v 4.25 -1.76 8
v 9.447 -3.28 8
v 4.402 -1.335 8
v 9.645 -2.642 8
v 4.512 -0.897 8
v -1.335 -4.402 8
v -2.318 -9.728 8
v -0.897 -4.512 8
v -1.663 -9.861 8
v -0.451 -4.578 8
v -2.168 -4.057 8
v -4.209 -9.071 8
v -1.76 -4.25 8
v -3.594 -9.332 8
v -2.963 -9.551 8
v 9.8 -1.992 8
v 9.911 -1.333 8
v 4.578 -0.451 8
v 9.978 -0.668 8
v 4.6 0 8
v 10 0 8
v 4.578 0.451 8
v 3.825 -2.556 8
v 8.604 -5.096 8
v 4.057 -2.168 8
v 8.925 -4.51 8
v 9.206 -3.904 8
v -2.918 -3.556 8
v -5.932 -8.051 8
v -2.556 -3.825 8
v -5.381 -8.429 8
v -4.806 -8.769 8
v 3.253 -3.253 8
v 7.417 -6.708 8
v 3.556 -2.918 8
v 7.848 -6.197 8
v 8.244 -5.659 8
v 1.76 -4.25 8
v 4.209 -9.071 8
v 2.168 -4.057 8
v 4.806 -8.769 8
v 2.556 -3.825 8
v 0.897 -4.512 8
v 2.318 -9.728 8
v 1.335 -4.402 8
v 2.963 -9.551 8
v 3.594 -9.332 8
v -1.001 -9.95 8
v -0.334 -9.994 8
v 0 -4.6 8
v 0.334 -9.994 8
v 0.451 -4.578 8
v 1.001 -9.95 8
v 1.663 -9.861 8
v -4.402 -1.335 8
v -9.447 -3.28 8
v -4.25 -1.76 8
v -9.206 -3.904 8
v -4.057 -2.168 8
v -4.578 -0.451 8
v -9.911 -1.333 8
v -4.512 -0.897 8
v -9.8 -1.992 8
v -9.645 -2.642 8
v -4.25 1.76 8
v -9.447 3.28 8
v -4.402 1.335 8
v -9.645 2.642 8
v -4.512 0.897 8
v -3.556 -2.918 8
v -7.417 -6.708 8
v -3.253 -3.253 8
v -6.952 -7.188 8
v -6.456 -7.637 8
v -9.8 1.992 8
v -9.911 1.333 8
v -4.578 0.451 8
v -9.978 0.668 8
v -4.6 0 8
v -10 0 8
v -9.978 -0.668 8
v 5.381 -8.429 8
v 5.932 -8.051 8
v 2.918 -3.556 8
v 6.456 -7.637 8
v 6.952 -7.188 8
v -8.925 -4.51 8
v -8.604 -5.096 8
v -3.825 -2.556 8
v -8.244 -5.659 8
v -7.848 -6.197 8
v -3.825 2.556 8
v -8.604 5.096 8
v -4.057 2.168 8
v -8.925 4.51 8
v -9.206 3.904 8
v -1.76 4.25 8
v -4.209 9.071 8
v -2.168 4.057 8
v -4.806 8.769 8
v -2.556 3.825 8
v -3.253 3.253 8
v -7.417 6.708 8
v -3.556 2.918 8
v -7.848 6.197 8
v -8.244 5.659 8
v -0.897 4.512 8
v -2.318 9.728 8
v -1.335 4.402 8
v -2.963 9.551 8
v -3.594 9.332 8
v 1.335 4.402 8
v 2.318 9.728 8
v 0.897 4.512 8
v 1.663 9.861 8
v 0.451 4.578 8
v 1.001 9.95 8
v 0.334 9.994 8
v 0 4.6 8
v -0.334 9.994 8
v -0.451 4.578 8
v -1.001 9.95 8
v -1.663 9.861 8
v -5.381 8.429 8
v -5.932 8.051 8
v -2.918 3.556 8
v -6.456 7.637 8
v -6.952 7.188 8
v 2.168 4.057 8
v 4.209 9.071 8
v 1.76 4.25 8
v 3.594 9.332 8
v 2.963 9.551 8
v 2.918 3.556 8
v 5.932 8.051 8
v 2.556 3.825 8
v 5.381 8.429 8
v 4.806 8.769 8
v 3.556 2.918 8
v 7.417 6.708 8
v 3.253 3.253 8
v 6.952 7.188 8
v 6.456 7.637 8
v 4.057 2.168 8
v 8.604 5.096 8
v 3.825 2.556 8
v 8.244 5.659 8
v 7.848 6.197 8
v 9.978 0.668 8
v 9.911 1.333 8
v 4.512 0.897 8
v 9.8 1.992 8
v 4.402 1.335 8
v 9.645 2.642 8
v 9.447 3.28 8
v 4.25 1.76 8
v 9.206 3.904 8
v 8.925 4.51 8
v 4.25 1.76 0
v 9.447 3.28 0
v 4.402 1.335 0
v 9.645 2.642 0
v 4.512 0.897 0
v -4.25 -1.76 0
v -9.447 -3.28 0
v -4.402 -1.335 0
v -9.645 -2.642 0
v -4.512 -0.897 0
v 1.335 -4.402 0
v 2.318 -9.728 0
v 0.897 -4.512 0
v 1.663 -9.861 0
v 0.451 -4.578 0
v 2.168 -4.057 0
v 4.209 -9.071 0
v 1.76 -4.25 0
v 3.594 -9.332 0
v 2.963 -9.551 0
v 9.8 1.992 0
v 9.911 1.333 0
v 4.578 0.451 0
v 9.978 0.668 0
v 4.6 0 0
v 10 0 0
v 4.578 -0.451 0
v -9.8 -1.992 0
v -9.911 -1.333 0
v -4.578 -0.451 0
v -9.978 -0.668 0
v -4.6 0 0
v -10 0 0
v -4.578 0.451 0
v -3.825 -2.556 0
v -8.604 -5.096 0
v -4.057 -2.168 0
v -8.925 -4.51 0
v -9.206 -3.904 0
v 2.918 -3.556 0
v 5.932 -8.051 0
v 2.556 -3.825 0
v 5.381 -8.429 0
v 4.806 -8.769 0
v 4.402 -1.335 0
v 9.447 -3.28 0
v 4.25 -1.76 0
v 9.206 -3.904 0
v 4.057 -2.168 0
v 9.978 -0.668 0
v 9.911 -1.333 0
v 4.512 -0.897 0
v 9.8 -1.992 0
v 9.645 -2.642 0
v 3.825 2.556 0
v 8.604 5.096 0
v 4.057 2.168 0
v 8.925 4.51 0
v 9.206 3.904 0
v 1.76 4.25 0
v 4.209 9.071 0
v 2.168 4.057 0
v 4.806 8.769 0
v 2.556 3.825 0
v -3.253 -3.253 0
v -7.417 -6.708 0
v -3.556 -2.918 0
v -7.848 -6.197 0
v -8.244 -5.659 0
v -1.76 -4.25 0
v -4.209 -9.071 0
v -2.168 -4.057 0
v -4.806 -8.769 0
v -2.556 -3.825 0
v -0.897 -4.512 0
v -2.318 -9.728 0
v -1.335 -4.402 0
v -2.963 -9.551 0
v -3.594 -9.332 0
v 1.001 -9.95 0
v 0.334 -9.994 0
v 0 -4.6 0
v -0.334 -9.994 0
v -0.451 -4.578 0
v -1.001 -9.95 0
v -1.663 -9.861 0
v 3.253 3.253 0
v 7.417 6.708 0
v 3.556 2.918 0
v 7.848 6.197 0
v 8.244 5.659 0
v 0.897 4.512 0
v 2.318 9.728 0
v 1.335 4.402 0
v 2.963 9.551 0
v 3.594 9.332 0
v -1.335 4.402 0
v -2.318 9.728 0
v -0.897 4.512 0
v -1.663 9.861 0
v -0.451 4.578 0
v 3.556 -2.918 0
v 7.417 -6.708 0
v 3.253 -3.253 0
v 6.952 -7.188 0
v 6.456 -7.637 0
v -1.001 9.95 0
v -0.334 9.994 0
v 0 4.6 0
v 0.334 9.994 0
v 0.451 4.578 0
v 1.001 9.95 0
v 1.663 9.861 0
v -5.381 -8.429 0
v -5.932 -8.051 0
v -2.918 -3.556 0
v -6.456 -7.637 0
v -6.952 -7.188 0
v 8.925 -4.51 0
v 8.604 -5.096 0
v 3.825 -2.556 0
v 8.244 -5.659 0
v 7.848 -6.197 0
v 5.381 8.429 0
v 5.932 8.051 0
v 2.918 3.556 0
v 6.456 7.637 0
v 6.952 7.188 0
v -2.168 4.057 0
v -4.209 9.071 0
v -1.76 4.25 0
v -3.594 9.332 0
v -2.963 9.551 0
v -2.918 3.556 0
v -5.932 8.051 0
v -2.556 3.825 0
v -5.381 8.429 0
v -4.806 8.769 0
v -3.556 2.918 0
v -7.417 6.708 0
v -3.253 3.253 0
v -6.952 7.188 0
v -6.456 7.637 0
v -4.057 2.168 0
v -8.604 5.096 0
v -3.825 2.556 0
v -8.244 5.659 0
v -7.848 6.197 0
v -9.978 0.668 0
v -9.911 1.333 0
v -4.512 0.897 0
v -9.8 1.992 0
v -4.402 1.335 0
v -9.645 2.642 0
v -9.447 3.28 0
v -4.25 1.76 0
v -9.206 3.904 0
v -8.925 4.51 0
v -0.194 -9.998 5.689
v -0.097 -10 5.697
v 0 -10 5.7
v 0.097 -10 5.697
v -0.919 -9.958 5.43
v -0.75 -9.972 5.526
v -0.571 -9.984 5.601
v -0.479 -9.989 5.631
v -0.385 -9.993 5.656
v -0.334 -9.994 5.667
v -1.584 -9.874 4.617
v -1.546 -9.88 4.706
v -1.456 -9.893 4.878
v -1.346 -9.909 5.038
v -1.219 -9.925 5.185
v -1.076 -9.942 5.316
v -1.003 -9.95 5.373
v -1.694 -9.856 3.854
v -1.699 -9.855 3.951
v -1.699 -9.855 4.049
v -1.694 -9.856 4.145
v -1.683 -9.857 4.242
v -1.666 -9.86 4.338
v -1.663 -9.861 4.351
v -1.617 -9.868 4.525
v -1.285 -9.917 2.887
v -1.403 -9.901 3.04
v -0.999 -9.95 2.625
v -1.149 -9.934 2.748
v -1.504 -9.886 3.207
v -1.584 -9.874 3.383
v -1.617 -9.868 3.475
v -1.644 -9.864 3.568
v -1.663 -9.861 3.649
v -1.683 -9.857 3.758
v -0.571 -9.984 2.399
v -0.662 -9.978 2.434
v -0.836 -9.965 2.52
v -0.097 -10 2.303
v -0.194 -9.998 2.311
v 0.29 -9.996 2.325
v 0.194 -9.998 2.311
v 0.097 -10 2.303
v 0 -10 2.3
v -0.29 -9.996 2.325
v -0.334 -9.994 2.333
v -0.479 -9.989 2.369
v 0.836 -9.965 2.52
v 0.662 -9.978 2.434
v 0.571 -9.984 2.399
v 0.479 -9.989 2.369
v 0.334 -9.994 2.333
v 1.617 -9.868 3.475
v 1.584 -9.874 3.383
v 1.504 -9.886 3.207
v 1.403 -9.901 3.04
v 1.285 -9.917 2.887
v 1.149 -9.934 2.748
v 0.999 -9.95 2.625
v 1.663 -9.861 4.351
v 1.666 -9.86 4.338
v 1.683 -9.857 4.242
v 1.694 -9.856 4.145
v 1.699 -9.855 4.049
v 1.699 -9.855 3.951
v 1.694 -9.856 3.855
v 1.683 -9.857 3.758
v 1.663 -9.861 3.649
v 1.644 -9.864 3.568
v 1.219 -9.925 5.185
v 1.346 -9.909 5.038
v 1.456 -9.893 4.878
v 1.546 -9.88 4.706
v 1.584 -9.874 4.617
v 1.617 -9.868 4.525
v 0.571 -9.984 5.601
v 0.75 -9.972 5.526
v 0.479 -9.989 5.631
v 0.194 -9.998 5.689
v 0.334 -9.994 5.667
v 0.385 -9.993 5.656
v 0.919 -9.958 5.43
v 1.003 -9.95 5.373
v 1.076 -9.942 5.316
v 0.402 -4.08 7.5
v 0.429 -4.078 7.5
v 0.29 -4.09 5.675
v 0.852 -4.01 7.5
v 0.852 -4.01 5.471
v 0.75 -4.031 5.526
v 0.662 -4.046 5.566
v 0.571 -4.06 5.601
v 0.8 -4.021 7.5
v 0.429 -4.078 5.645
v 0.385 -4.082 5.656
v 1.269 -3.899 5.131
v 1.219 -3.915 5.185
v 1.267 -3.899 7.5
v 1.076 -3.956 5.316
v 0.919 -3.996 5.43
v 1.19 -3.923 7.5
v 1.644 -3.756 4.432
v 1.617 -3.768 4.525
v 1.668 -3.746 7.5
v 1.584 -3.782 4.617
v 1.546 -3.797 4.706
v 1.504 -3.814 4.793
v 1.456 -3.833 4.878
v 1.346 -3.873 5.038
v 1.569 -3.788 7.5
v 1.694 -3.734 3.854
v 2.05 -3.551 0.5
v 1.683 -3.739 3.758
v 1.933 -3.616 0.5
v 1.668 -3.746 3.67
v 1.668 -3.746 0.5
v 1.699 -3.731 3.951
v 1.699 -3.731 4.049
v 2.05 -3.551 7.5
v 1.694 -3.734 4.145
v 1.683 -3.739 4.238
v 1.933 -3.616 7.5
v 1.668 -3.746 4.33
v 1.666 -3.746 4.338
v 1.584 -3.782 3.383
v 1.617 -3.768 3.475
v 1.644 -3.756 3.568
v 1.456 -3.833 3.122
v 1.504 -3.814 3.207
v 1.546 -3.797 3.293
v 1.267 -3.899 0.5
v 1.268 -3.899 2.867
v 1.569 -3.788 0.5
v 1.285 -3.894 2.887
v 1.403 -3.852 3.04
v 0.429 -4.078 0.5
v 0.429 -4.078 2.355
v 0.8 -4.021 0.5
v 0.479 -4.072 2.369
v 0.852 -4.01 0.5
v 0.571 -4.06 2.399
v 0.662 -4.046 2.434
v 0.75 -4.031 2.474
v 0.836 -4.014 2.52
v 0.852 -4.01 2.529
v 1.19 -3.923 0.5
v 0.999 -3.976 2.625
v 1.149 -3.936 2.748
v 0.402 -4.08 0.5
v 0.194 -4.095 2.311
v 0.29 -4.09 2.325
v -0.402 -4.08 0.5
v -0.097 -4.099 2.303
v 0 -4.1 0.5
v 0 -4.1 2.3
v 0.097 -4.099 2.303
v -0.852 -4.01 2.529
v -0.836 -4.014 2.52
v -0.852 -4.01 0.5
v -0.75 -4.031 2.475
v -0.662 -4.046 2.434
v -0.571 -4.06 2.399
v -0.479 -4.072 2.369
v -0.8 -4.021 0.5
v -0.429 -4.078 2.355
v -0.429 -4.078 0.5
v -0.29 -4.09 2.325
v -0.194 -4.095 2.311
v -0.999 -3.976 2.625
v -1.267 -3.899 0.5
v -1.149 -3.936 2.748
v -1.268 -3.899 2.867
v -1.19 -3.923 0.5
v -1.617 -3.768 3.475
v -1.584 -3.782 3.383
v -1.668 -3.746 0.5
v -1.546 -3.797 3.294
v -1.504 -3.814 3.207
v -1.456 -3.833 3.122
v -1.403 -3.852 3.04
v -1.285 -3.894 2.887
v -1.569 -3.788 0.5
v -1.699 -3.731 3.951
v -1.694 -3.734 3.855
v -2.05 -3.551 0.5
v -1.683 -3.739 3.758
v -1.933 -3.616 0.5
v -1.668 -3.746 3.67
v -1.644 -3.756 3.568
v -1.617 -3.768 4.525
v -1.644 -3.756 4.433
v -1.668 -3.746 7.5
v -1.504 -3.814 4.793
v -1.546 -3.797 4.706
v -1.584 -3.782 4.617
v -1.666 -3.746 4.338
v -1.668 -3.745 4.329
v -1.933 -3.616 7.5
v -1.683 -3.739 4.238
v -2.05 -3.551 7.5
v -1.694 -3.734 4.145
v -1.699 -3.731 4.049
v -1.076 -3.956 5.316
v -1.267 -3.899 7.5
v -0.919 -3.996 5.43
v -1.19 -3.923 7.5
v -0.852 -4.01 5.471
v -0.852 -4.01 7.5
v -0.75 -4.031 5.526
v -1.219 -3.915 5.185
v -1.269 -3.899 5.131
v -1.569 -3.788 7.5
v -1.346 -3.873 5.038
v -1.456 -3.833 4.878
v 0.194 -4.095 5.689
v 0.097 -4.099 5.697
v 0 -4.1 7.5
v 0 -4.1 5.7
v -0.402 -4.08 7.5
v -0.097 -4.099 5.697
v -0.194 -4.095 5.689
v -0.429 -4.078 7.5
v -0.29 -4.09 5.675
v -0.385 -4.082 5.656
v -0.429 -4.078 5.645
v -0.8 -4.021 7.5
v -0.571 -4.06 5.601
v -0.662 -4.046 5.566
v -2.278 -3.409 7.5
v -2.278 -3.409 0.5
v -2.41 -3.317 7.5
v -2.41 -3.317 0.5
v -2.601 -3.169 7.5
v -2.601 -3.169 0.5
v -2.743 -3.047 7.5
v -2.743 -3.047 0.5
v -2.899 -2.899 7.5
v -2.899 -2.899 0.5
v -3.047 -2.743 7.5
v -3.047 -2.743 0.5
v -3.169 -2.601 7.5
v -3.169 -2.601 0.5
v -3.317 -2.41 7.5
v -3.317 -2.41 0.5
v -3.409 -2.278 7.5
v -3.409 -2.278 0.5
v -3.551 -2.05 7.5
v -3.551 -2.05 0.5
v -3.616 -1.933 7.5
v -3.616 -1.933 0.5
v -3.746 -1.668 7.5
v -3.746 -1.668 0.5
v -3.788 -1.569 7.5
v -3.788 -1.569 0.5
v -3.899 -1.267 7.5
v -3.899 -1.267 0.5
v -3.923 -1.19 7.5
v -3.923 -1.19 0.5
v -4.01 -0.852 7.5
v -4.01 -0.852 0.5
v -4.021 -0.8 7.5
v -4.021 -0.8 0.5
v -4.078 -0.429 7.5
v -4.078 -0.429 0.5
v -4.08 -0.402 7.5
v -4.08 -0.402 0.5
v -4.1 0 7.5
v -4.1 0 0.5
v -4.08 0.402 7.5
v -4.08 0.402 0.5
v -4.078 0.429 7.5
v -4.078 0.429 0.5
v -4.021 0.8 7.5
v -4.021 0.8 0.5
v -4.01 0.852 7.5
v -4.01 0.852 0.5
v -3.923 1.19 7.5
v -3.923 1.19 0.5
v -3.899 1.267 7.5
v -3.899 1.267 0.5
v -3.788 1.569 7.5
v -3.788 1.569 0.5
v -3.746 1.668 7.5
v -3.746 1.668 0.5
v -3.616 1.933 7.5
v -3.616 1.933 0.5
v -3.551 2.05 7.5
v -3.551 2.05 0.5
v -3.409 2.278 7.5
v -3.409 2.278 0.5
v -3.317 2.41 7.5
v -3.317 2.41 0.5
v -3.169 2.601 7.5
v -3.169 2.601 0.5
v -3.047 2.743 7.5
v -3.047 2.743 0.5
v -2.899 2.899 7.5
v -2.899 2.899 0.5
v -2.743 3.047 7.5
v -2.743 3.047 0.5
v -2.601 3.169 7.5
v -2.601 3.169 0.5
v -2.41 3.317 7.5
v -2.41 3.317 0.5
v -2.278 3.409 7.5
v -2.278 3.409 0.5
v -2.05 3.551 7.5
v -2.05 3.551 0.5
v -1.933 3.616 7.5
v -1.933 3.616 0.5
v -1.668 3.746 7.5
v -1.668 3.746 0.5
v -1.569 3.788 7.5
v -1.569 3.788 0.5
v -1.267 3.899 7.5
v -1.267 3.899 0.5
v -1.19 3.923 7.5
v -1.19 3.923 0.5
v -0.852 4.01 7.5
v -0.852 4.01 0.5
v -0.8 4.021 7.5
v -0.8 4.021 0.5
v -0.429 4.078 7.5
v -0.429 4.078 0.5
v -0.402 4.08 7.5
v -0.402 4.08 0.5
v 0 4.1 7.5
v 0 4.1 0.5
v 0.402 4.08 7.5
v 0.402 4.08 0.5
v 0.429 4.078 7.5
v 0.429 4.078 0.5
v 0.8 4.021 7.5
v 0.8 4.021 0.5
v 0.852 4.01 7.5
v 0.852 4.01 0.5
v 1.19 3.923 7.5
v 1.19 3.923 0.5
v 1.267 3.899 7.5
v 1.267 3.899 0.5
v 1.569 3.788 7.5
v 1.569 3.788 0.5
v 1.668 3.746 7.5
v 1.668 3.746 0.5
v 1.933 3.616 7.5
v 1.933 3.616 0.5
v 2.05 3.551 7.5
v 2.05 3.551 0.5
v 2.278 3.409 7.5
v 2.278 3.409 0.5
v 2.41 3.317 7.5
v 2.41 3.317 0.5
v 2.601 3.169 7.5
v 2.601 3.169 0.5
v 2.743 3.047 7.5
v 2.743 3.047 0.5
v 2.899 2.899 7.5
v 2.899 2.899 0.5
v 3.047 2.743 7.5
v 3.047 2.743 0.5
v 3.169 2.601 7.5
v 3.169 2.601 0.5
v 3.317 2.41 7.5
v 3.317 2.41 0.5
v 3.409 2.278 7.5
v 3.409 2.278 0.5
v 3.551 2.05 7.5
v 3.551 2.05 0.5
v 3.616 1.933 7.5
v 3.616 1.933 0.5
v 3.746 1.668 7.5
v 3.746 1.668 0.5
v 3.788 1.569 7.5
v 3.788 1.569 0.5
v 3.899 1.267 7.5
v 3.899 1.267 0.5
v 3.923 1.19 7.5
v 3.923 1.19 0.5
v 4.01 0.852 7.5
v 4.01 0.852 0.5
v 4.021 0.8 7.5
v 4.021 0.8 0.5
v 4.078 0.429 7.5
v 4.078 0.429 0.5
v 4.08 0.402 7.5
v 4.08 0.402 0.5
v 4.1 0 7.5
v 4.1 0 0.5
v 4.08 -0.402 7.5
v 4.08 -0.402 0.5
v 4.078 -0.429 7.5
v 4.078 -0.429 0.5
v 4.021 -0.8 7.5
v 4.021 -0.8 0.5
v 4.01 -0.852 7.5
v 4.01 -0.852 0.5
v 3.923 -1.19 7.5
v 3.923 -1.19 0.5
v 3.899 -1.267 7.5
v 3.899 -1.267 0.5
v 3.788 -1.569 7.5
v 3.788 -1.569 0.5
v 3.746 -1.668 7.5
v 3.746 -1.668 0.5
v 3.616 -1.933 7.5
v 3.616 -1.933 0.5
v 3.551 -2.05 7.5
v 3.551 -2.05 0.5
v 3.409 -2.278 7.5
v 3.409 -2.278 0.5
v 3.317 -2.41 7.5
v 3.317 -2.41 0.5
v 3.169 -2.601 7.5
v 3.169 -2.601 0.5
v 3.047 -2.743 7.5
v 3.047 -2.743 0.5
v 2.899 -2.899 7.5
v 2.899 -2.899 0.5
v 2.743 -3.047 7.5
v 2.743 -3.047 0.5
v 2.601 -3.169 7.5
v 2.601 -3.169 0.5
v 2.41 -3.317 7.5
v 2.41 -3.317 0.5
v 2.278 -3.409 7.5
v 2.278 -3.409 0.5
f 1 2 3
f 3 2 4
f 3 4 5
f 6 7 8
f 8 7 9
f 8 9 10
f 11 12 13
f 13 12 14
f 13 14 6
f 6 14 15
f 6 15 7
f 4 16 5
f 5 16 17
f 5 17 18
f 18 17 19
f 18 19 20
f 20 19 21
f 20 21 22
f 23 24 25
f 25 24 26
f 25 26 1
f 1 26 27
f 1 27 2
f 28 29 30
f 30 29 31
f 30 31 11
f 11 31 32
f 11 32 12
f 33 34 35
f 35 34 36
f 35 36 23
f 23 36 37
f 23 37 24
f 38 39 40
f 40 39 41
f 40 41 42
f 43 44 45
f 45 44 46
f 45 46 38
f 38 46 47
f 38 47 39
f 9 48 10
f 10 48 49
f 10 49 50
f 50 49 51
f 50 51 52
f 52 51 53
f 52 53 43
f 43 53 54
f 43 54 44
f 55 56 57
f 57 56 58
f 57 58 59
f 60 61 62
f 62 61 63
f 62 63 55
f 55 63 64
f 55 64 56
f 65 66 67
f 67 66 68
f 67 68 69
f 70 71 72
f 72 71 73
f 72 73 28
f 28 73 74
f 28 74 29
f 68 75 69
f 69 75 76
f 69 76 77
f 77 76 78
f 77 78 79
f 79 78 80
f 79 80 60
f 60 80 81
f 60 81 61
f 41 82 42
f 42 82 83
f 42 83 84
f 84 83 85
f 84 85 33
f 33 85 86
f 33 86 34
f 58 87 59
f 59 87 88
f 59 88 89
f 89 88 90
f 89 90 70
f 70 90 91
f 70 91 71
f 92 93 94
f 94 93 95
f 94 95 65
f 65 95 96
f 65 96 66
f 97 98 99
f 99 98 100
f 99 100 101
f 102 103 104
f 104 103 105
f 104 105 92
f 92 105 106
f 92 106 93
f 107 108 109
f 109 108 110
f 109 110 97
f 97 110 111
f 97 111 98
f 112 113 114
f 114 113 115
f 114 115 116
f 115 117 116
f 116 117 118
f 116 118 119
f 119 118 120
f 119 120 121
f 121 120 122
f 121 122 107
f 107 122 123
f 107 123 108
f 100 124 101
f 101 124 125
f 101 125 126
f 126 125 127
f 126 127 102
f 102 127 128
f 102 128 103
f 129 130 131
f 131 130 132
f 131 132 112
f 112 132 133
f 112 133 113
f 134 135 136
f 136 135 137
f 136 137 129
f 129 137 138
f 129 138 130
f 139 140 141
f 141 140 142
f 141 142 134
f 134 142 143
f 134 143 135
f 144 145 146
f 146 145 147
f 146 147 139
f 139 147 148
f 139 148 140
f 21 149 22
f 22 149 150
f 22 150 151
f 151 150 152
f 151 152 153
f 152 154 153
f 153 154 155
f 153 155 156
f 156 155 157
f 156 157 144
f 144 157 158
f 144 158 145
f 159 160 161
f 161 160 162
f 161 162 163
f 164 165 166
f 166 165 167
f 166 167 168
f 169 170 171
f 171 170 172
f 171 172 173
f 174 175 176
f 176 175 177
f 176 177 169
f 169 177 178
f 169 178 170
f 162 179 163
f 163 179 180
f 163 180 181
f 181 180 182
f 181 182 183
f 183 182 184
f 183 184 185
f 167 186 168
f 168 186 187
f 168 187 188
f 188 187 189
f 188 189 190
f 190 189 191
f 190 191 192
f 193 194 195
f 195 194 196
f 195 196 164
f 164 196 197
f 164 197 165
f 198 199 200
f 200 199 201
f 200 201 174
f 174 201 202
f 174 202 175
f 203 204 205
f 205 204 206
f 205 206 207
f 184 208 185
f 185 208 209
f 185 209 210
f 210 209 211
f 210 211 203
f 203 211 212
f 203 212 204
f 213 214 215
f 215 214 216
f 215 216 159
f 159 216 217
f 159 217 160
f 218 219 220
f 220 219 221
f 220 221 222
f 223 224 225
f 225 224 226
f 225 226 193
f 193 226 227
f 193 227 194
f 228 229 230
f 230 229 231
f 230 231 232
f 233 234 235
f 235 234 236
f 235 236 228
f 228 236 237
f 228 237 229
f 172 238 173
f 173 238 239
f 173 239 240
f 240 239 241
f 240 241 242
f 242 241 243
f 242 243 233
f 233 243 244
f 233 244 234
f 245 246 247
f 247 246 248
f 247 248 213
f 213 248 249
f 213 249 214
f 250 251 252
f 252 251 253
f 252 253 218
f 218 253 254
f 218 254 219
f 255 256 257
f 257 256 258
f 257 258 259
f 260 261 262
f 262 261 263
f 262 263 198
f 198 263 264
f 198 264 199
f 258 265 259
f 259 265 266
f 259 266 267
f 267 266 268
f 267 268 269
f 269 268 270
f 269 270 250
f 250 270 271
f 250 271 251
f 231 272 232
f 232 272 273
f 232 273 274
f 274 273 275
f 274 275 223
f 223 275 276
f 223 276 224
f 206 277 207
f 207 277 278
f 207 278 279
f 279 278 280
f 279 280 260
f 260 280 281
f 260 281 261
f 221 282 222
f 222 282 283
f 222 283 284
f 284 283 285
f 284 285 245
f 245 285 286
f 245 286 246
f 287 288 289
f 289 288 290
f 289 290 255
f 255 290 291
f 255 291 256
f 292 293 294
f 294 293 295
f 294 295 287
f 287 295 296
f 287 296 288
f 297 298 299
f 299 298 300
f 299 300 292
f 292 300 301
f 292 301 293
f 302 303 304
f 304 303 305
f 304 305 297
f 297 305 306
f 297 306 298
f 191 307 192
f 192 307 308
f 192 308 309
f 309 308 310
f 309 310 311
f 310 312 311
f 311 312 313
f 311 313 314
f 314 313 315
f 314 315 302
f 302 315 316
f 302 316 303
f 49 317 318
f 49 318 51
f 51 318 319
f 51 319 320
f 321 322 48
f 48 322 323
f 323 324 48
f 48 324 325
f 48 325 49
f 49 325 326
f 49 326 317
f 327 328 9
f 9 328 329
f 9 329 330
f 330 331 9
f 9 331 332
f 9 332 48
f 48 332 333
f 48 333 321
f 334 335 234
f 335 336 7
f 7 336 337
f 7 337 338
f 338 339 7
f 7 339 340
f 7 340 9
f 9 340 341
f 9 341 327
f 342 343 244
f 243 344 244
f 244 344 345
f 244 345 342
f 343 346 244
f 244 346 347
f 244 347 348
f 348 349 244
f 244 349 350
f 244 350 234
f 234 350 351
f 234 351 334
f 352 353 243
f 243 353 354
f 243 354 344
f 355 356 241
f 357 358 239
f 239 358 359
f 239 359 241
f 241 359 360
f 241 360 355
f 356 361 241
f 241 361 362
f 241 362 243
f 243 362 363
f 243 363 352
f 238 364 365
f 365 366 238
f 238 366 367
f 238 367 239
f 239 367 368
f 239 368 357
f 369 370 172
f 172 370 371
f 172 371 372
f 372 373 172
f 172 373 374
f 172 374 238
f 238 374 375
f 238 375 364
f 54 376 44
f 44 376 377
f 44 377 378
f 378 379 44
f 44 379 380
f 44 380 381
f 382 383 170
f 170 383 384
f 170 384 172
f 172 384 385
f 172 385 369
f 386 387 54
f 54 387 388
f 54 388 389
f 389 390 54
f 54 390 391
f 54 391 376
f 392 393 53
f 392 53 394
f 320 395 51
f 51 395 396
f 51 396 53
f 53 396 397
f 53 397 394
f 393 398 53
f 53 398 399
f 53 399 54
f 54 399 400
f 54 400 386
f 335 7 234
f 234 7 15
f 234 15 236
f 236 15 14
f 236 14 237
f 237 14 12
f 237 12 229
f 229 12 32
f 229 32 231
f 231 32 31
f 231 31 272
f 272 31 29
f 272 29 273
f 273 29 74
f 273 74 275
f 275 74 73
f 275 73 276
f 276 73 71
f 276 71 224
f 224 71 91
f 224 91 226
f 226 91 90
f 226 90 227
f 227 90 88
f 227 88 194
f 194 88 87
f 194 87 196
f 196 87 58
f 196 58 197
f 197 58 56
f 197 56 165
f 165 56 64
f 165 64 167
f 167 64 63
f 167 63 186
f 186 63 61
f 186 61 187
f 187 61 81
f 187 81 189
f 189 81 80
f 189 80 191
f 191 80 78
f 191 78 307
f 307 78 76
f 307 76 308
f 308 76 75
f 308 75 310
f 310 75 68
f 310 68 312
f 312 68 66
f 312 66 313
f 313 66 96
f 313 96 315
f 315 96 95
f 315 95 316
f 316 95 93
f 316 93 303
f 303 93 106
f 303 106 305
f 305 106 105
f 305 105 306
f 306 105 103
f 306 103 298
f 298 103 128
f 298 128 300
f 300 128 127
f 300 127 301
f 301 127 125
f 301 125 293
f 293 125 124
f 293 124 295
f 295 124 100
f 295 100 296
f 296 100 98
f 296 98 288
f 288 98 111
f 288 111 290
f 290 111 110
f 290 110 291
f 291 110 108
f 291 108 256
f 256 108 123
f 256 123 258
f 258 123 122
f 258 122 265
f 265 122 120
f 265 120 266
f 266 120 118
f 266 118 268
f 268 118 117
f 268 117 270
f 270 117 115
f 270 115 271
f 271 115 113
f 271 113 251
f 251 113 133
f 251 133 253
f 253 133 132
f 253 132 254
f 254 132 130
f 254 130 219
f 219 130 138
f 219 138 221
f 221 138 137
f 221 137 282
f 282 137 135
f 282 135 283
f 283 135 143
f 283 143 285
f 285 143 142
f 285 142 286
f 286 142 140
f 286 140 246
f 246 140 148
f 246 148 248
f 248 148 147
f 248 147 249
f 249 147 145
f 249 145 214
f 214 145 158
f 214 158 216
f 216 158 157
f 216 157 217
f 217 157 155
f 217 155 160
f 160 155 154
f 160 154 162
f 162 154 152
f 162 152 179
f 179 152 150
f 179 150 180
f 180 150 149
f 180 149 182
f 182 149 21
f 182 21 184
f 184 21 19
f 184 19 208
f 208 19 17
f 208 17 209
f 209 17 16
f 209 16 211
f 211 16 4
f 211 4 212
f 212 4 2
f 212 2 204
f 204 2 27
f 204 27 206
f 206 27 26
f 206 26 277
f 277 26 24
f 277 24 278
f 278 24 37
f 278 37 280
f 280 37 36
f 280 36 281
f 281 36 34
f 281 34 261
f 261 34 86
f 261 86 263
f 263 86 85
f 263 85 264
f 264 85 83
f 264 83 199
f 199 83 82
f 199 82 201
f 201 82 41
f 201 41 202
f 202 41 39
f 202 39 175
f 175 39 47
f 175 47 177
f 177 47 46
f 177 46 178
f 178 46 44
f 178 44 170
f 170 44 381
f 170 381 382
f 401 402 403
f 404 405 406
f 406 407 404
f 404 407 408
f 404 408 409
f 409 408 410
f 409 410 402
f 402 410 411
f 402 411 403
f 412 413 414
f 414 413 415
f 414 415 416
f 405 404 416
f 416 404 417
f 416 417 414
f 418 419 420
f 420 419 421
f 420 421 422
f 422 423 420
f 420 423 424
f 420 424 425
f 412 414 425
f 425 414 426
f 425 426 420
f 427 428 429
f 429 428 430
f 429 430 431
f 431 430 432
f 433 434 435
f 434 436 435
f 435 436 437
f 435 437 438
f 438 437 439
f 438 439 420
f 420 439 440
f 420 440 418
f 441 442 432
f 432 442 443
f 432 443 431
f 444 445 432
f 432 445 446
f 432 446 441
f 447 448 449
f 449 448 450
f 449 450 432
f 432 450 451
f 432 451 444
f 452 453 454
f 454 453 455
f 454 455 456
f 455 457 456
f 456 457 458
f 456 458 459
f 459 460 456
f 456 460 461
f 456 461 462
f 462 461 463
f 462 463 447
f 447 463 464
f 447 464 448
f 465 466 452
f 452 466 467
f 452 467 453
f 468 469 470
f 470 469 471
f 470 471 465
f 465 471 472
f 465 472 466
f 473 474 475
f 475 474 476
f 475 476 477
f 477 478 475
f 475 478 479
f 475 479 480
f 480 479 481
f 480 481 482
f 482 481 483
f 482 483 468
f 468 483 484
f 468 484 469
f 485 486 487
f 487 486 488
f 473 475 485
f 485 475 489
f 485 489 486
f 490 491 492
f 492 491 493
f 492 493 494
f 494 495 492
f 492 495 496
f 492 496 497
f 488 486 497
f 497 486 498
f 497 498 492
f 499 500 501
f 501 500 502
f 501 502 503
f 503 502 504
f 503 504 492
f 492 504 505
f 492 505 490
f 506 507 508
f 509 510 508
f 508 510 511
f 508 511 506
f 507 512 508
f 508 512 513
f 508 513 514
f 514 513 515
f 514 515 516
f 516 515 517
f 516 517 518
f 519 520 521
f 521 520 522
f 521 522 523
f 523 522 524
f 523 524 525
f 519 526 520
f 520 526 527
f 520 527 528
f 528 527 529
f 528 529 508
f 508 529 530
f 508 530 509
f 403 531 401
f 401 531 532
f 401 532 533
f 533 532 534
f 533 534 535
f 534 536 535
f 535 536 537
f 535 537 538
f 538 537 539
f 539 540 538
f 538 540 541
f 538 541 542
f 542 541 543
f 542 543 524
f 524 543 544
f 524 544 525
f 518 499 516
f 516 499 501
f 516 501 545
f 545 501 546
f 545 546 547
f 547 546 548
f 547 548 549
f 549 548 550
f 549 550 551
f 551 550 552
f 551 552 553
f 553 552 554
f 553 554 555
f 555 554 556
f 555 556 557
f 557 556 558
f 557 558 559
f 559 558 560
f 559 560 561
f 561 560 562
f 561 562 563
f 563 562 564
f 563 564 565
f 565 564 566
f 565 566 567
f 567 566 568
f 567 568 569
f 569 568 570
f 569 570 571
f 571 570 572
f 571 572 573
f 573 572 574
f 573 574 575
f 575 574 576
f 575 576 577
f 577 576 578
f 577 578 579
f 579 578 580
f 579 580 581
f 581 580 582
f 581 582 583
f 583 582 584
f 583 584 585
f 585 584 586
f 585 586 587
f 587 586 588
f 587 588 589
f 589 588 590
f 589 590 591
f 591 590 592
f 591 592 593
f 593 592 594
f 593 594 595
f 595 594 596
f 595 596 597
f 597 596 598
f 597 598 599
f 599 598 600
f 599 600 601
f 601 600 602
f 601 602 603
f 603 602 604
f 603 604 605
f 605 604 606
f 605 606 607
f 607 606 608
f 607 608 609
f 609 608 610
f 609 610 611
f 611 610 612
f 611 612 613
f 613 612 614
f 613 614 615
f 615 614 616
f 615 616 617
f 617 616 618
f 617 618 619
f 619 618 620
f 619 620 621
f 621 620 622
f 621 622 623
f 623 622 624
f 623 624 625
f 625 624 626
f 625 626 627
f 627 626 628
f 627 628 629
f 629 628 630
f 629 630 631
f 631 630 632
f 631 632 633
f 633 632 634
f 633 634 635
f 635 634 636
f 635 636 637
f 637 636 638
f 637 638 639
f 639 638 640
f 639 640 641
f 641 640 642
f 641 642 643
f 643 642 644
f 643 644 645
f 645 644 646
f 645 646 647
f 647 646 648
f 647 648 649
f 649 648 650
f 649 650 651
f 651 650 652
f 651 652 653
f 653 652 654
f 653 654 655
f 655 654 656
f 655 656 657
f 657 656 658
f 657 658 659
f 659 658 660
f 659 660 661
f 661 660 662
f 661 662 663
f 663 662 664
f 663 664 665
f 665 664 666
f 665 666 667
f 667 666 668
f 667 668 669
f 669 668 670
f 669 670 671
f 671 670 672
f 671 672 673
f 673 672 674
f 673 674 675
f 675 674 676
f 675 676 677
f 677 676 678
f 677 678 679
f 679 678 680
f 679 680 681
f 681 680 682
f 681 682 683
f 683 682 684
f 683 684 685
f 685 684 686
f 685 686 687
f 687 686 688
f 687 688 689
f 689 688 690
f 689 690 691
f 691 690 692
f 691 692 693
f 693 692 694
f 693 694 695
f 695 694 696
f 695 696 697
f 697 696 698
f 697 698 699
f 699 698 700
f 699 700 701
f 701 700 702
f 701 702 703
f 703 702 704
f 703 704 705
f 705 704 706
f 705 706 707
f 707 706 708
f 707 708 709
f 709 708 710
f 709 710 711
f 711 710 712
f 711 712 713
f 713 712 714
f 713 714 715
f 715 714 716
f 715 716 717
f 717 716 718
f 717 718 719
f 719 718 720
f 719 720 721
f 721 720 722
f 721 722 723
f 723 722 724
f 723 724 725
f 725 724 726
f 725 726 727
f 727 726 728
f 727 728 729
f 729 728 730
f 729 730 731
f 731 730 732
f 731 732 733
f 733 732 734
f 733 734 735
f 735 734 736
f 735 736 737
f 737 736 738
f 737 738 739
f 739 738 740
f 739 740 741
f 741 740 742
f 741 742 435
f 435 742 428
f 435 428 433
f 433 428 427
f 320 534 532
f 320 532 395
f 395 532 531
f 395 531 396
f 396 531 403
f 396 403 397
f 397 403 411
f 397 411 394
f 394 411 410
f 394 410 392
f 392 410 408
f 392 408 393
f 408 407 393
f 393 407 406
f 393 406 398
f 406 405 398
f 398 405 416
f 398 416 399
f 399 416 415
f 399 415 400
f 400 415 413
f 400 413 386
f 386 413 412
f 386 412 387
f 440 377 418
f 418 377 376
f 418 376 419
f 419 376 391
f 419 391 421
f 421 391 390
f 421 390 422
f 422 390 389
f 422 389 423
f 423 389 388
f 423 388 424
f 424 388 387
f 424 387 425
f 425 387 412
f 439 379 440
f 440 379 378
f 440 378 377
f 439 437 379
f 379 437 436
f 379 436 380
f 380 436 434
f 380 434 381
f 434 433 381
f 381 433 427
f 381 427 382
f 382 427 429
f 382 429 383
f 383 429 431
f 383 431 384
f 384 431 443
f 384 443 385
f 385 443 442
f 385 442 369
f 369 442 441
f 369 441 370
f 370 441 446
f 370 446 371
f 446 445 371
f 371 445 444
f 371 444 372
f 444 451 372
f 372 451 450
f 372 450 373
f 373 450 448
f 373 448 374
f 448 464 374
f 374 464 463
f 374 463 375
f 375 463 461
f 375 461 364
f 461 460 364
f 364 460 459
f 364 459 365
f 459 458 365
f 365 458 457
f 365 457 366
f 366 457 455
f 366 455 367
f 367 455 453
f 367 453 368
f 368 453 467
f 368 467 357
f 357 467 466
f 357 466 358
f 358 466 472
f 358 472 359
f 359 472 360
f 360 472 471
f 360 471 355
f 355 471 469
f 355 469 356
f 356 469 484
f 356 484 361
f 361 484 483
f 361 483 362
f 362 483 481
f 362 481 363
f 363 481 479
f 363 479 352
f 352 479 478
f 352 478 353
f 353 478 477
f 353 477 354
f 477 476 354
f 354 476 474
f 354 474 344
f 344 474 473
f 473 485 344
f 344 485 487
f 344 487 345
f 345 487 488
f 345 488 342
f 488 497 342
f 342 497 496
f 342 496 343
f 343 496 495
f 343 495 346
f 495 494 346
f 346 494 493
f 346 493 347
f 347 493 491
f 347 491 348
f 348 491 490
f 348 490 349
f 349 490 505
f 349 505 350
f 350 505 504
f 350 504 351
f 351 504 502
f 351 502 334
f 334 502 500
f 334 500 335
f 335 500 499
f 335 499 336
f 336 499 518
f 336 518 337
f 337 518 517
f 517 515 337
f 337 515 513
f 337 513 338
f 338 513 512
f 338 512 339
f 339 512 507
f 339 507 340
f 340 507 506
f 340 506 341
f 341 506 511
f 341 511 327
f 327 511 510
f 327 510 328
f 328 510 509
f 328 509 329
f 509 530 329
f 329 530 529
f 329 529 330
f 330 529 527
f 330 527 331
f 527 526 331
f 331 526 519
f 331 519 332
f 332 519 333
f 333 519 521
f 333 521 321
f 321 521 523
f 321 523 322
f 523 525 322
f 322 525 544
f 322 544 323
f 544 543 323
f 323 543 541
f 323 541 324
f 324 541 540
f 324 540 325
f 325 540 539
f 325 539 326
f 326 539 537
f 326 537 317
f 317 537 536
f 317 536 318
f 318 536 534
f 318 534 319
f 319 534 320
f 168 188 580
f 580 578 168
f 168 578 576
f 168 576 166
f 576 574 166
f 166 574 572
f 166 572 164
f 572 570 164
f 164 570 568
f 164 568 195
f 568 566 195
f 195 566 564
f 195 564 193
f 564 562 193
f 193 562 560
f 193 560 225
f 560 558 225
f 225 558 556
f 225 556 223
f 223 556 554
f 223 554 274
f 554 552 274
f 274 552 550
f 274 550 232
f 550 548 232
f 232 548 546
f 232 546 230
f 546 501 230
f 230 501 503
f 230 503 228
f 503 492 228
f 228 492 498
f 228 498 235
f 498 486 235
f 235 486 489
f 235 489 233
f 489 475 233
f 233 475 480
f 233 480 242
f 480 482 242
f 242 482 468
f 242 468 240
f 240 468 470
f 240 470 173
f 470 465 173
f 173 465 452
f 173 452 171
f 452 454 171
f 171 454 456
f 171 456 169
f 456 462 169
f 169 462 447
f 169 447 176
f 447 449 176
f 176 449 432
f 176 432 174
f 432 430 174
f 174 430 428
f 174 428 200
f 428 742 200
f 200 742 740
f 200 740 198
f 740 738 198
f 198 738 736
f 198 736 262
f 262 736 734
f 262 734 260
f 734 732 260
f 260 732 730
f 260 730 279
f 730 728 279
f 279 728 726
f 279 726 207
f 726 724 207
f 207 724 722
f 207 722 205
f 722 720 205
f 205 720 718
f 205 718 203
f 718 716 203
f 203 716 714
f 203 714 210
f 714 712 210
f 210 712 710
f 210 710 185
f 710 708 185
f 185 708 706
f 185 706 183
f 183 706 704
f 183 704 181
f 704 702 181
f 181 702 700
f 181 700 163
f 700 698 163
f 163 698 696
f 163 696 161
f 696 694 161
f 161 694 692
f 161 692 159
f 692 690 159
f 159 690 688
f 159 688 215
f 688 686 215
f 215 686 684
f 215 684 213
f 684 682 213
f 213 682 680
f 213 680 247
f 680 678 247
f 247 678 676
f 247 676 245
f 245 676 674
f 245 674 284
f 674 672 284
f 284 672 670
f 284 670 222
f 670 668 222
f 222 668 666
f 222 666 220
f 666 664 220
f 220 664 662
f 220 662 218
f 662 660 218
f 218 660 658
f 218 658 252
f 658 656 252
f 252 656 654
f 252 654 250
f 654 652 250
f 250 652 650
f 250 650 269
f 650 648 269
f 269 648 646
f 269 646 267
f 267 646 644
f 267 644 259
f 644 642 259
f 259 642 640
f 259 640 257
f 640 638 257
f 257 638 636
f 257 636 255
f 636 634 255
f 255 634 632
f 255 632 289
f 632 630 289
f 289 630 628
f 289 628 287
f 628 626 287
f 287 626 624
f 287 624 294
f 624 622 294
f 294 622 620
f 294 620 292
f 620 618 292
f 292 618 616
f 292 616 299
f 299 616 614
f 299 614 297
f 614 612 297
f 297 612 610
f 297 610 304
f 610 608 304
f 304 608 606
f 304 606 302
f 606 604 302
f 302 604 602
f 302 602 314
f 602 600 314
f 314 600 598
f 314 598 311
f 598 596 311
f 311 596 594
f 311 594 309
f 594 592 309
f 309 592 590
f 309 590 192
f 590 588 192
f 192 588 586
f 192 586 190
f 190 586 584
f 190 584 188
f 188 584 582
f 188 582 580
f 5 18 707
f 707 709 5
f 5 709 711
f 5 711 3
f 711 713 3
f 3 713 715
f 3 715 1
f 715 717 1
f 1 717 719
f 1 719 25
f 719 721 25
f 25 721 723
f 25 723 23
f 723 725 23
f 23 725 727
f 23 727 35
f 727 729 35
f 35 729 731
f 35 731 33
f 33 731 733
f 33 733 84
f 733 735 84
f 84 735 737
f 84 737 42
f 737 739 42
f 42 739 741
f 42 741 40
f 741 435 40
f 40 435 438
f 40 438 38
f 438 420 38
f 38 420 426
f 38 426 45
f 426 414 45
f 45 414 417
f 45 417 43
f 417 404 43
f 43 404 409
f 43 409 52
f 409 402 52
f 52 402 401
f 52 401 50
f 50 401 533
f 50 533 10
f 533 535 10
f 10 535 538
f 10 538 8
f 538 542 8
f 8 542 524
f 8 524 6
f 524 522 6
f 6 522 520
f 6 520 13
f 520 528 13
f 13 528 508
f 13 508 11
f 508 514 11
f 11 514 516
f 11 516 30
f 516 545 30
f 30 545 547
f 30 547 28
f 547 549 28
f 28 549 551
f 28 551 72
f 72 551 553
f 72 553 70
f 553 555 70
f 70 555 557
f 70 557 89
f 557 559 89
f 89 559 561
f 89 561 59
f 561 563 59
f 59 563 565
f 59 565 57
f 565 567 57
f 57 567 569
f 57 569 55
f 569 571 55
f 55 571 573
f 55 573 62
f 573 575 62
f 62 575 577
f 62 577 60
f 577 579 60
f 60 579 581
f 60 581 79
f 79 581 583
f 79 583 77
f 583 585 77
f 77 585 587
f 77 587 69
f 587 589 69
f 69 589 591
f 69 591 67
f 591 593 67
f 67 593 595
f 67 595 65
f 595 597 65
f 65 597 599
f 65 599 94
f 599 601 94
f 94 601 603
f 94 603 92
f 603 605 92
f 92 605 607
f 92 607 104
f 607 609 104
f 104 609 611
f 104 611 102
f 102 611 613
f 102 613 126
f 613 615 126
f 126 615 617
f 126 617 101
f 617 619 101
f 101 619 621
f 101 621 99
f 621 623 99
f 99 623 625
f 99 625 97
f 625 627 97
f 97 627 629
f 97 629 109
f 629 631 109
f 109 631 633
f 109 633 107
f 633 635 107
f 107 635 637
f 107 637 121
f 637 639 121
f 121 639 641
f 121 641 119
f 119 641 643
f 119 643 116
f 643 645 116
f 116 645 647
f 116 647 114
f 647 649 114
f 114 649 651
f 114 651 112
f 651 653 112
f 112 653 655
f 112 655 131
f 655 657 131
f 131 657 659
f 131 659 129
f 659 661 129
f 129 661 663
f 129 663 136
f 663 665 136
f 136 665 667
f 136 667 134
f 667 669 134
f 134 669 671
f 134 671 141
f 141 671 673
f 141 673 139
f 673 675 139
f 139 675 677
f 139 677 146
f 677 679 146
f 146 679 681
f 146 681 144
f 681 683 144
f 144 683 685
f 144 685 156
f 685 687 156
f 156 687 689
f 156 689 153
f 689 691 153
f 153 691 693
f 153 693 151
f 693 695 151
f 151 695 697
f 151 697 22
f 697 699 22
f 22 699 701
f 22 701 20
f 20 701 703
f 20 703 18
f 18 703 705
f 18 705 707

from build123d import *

# Parameters (mm, degrees)
ESQUISSE1_R             = 10
ESQUISSE1_R_2           = 4.1
BOSS_EXTRU_1_DEPTH      = 8
ESQUISSE2_R             = 1.7
ENL_V_MAT_EXTRU_1_DEPTH = 15
CHANFREIN1_SIZE         = 0.5


with BuildPart() as part:
    # Esquisse1 → Boss.-Extru.1 (new body)
    with BuildSketch(Plane.XY):
        Circle(ESQUISSE1_R)
        Circle(ESQUISSE1_R_2, mode=Mode.SUBTRACT)
    extrude(amount=BOSS_EXTRU_1_DEPTH)

    # Esquisse2 → Enlèv. mat.-Extru.1 (cut)
    with BuildSketch(Plane(origin=(0, 0, 0), x_dir=(1, 0, 0), z_dir=(0, 1, 0))):
        with Locations(Location((0, -4, 0), (0, 0, 270))):
            Circle(ESQUISSE2_R)
    extrude(amount=-ENL_V_MAT_EXTRU_1_DEPTH, mode=Mode.SUBTRACT)

    # Chanfrein1
    chanfrein1_edges = [part.edges().sort_by_distance(p)[0] for p in [
        (-4.1, 0, 0),
        (-4.1, 0, 8),
    ]]
    chamfer(chanfrein1_edges, length=CHANFREIN1_SIZE)


solid = part.part
